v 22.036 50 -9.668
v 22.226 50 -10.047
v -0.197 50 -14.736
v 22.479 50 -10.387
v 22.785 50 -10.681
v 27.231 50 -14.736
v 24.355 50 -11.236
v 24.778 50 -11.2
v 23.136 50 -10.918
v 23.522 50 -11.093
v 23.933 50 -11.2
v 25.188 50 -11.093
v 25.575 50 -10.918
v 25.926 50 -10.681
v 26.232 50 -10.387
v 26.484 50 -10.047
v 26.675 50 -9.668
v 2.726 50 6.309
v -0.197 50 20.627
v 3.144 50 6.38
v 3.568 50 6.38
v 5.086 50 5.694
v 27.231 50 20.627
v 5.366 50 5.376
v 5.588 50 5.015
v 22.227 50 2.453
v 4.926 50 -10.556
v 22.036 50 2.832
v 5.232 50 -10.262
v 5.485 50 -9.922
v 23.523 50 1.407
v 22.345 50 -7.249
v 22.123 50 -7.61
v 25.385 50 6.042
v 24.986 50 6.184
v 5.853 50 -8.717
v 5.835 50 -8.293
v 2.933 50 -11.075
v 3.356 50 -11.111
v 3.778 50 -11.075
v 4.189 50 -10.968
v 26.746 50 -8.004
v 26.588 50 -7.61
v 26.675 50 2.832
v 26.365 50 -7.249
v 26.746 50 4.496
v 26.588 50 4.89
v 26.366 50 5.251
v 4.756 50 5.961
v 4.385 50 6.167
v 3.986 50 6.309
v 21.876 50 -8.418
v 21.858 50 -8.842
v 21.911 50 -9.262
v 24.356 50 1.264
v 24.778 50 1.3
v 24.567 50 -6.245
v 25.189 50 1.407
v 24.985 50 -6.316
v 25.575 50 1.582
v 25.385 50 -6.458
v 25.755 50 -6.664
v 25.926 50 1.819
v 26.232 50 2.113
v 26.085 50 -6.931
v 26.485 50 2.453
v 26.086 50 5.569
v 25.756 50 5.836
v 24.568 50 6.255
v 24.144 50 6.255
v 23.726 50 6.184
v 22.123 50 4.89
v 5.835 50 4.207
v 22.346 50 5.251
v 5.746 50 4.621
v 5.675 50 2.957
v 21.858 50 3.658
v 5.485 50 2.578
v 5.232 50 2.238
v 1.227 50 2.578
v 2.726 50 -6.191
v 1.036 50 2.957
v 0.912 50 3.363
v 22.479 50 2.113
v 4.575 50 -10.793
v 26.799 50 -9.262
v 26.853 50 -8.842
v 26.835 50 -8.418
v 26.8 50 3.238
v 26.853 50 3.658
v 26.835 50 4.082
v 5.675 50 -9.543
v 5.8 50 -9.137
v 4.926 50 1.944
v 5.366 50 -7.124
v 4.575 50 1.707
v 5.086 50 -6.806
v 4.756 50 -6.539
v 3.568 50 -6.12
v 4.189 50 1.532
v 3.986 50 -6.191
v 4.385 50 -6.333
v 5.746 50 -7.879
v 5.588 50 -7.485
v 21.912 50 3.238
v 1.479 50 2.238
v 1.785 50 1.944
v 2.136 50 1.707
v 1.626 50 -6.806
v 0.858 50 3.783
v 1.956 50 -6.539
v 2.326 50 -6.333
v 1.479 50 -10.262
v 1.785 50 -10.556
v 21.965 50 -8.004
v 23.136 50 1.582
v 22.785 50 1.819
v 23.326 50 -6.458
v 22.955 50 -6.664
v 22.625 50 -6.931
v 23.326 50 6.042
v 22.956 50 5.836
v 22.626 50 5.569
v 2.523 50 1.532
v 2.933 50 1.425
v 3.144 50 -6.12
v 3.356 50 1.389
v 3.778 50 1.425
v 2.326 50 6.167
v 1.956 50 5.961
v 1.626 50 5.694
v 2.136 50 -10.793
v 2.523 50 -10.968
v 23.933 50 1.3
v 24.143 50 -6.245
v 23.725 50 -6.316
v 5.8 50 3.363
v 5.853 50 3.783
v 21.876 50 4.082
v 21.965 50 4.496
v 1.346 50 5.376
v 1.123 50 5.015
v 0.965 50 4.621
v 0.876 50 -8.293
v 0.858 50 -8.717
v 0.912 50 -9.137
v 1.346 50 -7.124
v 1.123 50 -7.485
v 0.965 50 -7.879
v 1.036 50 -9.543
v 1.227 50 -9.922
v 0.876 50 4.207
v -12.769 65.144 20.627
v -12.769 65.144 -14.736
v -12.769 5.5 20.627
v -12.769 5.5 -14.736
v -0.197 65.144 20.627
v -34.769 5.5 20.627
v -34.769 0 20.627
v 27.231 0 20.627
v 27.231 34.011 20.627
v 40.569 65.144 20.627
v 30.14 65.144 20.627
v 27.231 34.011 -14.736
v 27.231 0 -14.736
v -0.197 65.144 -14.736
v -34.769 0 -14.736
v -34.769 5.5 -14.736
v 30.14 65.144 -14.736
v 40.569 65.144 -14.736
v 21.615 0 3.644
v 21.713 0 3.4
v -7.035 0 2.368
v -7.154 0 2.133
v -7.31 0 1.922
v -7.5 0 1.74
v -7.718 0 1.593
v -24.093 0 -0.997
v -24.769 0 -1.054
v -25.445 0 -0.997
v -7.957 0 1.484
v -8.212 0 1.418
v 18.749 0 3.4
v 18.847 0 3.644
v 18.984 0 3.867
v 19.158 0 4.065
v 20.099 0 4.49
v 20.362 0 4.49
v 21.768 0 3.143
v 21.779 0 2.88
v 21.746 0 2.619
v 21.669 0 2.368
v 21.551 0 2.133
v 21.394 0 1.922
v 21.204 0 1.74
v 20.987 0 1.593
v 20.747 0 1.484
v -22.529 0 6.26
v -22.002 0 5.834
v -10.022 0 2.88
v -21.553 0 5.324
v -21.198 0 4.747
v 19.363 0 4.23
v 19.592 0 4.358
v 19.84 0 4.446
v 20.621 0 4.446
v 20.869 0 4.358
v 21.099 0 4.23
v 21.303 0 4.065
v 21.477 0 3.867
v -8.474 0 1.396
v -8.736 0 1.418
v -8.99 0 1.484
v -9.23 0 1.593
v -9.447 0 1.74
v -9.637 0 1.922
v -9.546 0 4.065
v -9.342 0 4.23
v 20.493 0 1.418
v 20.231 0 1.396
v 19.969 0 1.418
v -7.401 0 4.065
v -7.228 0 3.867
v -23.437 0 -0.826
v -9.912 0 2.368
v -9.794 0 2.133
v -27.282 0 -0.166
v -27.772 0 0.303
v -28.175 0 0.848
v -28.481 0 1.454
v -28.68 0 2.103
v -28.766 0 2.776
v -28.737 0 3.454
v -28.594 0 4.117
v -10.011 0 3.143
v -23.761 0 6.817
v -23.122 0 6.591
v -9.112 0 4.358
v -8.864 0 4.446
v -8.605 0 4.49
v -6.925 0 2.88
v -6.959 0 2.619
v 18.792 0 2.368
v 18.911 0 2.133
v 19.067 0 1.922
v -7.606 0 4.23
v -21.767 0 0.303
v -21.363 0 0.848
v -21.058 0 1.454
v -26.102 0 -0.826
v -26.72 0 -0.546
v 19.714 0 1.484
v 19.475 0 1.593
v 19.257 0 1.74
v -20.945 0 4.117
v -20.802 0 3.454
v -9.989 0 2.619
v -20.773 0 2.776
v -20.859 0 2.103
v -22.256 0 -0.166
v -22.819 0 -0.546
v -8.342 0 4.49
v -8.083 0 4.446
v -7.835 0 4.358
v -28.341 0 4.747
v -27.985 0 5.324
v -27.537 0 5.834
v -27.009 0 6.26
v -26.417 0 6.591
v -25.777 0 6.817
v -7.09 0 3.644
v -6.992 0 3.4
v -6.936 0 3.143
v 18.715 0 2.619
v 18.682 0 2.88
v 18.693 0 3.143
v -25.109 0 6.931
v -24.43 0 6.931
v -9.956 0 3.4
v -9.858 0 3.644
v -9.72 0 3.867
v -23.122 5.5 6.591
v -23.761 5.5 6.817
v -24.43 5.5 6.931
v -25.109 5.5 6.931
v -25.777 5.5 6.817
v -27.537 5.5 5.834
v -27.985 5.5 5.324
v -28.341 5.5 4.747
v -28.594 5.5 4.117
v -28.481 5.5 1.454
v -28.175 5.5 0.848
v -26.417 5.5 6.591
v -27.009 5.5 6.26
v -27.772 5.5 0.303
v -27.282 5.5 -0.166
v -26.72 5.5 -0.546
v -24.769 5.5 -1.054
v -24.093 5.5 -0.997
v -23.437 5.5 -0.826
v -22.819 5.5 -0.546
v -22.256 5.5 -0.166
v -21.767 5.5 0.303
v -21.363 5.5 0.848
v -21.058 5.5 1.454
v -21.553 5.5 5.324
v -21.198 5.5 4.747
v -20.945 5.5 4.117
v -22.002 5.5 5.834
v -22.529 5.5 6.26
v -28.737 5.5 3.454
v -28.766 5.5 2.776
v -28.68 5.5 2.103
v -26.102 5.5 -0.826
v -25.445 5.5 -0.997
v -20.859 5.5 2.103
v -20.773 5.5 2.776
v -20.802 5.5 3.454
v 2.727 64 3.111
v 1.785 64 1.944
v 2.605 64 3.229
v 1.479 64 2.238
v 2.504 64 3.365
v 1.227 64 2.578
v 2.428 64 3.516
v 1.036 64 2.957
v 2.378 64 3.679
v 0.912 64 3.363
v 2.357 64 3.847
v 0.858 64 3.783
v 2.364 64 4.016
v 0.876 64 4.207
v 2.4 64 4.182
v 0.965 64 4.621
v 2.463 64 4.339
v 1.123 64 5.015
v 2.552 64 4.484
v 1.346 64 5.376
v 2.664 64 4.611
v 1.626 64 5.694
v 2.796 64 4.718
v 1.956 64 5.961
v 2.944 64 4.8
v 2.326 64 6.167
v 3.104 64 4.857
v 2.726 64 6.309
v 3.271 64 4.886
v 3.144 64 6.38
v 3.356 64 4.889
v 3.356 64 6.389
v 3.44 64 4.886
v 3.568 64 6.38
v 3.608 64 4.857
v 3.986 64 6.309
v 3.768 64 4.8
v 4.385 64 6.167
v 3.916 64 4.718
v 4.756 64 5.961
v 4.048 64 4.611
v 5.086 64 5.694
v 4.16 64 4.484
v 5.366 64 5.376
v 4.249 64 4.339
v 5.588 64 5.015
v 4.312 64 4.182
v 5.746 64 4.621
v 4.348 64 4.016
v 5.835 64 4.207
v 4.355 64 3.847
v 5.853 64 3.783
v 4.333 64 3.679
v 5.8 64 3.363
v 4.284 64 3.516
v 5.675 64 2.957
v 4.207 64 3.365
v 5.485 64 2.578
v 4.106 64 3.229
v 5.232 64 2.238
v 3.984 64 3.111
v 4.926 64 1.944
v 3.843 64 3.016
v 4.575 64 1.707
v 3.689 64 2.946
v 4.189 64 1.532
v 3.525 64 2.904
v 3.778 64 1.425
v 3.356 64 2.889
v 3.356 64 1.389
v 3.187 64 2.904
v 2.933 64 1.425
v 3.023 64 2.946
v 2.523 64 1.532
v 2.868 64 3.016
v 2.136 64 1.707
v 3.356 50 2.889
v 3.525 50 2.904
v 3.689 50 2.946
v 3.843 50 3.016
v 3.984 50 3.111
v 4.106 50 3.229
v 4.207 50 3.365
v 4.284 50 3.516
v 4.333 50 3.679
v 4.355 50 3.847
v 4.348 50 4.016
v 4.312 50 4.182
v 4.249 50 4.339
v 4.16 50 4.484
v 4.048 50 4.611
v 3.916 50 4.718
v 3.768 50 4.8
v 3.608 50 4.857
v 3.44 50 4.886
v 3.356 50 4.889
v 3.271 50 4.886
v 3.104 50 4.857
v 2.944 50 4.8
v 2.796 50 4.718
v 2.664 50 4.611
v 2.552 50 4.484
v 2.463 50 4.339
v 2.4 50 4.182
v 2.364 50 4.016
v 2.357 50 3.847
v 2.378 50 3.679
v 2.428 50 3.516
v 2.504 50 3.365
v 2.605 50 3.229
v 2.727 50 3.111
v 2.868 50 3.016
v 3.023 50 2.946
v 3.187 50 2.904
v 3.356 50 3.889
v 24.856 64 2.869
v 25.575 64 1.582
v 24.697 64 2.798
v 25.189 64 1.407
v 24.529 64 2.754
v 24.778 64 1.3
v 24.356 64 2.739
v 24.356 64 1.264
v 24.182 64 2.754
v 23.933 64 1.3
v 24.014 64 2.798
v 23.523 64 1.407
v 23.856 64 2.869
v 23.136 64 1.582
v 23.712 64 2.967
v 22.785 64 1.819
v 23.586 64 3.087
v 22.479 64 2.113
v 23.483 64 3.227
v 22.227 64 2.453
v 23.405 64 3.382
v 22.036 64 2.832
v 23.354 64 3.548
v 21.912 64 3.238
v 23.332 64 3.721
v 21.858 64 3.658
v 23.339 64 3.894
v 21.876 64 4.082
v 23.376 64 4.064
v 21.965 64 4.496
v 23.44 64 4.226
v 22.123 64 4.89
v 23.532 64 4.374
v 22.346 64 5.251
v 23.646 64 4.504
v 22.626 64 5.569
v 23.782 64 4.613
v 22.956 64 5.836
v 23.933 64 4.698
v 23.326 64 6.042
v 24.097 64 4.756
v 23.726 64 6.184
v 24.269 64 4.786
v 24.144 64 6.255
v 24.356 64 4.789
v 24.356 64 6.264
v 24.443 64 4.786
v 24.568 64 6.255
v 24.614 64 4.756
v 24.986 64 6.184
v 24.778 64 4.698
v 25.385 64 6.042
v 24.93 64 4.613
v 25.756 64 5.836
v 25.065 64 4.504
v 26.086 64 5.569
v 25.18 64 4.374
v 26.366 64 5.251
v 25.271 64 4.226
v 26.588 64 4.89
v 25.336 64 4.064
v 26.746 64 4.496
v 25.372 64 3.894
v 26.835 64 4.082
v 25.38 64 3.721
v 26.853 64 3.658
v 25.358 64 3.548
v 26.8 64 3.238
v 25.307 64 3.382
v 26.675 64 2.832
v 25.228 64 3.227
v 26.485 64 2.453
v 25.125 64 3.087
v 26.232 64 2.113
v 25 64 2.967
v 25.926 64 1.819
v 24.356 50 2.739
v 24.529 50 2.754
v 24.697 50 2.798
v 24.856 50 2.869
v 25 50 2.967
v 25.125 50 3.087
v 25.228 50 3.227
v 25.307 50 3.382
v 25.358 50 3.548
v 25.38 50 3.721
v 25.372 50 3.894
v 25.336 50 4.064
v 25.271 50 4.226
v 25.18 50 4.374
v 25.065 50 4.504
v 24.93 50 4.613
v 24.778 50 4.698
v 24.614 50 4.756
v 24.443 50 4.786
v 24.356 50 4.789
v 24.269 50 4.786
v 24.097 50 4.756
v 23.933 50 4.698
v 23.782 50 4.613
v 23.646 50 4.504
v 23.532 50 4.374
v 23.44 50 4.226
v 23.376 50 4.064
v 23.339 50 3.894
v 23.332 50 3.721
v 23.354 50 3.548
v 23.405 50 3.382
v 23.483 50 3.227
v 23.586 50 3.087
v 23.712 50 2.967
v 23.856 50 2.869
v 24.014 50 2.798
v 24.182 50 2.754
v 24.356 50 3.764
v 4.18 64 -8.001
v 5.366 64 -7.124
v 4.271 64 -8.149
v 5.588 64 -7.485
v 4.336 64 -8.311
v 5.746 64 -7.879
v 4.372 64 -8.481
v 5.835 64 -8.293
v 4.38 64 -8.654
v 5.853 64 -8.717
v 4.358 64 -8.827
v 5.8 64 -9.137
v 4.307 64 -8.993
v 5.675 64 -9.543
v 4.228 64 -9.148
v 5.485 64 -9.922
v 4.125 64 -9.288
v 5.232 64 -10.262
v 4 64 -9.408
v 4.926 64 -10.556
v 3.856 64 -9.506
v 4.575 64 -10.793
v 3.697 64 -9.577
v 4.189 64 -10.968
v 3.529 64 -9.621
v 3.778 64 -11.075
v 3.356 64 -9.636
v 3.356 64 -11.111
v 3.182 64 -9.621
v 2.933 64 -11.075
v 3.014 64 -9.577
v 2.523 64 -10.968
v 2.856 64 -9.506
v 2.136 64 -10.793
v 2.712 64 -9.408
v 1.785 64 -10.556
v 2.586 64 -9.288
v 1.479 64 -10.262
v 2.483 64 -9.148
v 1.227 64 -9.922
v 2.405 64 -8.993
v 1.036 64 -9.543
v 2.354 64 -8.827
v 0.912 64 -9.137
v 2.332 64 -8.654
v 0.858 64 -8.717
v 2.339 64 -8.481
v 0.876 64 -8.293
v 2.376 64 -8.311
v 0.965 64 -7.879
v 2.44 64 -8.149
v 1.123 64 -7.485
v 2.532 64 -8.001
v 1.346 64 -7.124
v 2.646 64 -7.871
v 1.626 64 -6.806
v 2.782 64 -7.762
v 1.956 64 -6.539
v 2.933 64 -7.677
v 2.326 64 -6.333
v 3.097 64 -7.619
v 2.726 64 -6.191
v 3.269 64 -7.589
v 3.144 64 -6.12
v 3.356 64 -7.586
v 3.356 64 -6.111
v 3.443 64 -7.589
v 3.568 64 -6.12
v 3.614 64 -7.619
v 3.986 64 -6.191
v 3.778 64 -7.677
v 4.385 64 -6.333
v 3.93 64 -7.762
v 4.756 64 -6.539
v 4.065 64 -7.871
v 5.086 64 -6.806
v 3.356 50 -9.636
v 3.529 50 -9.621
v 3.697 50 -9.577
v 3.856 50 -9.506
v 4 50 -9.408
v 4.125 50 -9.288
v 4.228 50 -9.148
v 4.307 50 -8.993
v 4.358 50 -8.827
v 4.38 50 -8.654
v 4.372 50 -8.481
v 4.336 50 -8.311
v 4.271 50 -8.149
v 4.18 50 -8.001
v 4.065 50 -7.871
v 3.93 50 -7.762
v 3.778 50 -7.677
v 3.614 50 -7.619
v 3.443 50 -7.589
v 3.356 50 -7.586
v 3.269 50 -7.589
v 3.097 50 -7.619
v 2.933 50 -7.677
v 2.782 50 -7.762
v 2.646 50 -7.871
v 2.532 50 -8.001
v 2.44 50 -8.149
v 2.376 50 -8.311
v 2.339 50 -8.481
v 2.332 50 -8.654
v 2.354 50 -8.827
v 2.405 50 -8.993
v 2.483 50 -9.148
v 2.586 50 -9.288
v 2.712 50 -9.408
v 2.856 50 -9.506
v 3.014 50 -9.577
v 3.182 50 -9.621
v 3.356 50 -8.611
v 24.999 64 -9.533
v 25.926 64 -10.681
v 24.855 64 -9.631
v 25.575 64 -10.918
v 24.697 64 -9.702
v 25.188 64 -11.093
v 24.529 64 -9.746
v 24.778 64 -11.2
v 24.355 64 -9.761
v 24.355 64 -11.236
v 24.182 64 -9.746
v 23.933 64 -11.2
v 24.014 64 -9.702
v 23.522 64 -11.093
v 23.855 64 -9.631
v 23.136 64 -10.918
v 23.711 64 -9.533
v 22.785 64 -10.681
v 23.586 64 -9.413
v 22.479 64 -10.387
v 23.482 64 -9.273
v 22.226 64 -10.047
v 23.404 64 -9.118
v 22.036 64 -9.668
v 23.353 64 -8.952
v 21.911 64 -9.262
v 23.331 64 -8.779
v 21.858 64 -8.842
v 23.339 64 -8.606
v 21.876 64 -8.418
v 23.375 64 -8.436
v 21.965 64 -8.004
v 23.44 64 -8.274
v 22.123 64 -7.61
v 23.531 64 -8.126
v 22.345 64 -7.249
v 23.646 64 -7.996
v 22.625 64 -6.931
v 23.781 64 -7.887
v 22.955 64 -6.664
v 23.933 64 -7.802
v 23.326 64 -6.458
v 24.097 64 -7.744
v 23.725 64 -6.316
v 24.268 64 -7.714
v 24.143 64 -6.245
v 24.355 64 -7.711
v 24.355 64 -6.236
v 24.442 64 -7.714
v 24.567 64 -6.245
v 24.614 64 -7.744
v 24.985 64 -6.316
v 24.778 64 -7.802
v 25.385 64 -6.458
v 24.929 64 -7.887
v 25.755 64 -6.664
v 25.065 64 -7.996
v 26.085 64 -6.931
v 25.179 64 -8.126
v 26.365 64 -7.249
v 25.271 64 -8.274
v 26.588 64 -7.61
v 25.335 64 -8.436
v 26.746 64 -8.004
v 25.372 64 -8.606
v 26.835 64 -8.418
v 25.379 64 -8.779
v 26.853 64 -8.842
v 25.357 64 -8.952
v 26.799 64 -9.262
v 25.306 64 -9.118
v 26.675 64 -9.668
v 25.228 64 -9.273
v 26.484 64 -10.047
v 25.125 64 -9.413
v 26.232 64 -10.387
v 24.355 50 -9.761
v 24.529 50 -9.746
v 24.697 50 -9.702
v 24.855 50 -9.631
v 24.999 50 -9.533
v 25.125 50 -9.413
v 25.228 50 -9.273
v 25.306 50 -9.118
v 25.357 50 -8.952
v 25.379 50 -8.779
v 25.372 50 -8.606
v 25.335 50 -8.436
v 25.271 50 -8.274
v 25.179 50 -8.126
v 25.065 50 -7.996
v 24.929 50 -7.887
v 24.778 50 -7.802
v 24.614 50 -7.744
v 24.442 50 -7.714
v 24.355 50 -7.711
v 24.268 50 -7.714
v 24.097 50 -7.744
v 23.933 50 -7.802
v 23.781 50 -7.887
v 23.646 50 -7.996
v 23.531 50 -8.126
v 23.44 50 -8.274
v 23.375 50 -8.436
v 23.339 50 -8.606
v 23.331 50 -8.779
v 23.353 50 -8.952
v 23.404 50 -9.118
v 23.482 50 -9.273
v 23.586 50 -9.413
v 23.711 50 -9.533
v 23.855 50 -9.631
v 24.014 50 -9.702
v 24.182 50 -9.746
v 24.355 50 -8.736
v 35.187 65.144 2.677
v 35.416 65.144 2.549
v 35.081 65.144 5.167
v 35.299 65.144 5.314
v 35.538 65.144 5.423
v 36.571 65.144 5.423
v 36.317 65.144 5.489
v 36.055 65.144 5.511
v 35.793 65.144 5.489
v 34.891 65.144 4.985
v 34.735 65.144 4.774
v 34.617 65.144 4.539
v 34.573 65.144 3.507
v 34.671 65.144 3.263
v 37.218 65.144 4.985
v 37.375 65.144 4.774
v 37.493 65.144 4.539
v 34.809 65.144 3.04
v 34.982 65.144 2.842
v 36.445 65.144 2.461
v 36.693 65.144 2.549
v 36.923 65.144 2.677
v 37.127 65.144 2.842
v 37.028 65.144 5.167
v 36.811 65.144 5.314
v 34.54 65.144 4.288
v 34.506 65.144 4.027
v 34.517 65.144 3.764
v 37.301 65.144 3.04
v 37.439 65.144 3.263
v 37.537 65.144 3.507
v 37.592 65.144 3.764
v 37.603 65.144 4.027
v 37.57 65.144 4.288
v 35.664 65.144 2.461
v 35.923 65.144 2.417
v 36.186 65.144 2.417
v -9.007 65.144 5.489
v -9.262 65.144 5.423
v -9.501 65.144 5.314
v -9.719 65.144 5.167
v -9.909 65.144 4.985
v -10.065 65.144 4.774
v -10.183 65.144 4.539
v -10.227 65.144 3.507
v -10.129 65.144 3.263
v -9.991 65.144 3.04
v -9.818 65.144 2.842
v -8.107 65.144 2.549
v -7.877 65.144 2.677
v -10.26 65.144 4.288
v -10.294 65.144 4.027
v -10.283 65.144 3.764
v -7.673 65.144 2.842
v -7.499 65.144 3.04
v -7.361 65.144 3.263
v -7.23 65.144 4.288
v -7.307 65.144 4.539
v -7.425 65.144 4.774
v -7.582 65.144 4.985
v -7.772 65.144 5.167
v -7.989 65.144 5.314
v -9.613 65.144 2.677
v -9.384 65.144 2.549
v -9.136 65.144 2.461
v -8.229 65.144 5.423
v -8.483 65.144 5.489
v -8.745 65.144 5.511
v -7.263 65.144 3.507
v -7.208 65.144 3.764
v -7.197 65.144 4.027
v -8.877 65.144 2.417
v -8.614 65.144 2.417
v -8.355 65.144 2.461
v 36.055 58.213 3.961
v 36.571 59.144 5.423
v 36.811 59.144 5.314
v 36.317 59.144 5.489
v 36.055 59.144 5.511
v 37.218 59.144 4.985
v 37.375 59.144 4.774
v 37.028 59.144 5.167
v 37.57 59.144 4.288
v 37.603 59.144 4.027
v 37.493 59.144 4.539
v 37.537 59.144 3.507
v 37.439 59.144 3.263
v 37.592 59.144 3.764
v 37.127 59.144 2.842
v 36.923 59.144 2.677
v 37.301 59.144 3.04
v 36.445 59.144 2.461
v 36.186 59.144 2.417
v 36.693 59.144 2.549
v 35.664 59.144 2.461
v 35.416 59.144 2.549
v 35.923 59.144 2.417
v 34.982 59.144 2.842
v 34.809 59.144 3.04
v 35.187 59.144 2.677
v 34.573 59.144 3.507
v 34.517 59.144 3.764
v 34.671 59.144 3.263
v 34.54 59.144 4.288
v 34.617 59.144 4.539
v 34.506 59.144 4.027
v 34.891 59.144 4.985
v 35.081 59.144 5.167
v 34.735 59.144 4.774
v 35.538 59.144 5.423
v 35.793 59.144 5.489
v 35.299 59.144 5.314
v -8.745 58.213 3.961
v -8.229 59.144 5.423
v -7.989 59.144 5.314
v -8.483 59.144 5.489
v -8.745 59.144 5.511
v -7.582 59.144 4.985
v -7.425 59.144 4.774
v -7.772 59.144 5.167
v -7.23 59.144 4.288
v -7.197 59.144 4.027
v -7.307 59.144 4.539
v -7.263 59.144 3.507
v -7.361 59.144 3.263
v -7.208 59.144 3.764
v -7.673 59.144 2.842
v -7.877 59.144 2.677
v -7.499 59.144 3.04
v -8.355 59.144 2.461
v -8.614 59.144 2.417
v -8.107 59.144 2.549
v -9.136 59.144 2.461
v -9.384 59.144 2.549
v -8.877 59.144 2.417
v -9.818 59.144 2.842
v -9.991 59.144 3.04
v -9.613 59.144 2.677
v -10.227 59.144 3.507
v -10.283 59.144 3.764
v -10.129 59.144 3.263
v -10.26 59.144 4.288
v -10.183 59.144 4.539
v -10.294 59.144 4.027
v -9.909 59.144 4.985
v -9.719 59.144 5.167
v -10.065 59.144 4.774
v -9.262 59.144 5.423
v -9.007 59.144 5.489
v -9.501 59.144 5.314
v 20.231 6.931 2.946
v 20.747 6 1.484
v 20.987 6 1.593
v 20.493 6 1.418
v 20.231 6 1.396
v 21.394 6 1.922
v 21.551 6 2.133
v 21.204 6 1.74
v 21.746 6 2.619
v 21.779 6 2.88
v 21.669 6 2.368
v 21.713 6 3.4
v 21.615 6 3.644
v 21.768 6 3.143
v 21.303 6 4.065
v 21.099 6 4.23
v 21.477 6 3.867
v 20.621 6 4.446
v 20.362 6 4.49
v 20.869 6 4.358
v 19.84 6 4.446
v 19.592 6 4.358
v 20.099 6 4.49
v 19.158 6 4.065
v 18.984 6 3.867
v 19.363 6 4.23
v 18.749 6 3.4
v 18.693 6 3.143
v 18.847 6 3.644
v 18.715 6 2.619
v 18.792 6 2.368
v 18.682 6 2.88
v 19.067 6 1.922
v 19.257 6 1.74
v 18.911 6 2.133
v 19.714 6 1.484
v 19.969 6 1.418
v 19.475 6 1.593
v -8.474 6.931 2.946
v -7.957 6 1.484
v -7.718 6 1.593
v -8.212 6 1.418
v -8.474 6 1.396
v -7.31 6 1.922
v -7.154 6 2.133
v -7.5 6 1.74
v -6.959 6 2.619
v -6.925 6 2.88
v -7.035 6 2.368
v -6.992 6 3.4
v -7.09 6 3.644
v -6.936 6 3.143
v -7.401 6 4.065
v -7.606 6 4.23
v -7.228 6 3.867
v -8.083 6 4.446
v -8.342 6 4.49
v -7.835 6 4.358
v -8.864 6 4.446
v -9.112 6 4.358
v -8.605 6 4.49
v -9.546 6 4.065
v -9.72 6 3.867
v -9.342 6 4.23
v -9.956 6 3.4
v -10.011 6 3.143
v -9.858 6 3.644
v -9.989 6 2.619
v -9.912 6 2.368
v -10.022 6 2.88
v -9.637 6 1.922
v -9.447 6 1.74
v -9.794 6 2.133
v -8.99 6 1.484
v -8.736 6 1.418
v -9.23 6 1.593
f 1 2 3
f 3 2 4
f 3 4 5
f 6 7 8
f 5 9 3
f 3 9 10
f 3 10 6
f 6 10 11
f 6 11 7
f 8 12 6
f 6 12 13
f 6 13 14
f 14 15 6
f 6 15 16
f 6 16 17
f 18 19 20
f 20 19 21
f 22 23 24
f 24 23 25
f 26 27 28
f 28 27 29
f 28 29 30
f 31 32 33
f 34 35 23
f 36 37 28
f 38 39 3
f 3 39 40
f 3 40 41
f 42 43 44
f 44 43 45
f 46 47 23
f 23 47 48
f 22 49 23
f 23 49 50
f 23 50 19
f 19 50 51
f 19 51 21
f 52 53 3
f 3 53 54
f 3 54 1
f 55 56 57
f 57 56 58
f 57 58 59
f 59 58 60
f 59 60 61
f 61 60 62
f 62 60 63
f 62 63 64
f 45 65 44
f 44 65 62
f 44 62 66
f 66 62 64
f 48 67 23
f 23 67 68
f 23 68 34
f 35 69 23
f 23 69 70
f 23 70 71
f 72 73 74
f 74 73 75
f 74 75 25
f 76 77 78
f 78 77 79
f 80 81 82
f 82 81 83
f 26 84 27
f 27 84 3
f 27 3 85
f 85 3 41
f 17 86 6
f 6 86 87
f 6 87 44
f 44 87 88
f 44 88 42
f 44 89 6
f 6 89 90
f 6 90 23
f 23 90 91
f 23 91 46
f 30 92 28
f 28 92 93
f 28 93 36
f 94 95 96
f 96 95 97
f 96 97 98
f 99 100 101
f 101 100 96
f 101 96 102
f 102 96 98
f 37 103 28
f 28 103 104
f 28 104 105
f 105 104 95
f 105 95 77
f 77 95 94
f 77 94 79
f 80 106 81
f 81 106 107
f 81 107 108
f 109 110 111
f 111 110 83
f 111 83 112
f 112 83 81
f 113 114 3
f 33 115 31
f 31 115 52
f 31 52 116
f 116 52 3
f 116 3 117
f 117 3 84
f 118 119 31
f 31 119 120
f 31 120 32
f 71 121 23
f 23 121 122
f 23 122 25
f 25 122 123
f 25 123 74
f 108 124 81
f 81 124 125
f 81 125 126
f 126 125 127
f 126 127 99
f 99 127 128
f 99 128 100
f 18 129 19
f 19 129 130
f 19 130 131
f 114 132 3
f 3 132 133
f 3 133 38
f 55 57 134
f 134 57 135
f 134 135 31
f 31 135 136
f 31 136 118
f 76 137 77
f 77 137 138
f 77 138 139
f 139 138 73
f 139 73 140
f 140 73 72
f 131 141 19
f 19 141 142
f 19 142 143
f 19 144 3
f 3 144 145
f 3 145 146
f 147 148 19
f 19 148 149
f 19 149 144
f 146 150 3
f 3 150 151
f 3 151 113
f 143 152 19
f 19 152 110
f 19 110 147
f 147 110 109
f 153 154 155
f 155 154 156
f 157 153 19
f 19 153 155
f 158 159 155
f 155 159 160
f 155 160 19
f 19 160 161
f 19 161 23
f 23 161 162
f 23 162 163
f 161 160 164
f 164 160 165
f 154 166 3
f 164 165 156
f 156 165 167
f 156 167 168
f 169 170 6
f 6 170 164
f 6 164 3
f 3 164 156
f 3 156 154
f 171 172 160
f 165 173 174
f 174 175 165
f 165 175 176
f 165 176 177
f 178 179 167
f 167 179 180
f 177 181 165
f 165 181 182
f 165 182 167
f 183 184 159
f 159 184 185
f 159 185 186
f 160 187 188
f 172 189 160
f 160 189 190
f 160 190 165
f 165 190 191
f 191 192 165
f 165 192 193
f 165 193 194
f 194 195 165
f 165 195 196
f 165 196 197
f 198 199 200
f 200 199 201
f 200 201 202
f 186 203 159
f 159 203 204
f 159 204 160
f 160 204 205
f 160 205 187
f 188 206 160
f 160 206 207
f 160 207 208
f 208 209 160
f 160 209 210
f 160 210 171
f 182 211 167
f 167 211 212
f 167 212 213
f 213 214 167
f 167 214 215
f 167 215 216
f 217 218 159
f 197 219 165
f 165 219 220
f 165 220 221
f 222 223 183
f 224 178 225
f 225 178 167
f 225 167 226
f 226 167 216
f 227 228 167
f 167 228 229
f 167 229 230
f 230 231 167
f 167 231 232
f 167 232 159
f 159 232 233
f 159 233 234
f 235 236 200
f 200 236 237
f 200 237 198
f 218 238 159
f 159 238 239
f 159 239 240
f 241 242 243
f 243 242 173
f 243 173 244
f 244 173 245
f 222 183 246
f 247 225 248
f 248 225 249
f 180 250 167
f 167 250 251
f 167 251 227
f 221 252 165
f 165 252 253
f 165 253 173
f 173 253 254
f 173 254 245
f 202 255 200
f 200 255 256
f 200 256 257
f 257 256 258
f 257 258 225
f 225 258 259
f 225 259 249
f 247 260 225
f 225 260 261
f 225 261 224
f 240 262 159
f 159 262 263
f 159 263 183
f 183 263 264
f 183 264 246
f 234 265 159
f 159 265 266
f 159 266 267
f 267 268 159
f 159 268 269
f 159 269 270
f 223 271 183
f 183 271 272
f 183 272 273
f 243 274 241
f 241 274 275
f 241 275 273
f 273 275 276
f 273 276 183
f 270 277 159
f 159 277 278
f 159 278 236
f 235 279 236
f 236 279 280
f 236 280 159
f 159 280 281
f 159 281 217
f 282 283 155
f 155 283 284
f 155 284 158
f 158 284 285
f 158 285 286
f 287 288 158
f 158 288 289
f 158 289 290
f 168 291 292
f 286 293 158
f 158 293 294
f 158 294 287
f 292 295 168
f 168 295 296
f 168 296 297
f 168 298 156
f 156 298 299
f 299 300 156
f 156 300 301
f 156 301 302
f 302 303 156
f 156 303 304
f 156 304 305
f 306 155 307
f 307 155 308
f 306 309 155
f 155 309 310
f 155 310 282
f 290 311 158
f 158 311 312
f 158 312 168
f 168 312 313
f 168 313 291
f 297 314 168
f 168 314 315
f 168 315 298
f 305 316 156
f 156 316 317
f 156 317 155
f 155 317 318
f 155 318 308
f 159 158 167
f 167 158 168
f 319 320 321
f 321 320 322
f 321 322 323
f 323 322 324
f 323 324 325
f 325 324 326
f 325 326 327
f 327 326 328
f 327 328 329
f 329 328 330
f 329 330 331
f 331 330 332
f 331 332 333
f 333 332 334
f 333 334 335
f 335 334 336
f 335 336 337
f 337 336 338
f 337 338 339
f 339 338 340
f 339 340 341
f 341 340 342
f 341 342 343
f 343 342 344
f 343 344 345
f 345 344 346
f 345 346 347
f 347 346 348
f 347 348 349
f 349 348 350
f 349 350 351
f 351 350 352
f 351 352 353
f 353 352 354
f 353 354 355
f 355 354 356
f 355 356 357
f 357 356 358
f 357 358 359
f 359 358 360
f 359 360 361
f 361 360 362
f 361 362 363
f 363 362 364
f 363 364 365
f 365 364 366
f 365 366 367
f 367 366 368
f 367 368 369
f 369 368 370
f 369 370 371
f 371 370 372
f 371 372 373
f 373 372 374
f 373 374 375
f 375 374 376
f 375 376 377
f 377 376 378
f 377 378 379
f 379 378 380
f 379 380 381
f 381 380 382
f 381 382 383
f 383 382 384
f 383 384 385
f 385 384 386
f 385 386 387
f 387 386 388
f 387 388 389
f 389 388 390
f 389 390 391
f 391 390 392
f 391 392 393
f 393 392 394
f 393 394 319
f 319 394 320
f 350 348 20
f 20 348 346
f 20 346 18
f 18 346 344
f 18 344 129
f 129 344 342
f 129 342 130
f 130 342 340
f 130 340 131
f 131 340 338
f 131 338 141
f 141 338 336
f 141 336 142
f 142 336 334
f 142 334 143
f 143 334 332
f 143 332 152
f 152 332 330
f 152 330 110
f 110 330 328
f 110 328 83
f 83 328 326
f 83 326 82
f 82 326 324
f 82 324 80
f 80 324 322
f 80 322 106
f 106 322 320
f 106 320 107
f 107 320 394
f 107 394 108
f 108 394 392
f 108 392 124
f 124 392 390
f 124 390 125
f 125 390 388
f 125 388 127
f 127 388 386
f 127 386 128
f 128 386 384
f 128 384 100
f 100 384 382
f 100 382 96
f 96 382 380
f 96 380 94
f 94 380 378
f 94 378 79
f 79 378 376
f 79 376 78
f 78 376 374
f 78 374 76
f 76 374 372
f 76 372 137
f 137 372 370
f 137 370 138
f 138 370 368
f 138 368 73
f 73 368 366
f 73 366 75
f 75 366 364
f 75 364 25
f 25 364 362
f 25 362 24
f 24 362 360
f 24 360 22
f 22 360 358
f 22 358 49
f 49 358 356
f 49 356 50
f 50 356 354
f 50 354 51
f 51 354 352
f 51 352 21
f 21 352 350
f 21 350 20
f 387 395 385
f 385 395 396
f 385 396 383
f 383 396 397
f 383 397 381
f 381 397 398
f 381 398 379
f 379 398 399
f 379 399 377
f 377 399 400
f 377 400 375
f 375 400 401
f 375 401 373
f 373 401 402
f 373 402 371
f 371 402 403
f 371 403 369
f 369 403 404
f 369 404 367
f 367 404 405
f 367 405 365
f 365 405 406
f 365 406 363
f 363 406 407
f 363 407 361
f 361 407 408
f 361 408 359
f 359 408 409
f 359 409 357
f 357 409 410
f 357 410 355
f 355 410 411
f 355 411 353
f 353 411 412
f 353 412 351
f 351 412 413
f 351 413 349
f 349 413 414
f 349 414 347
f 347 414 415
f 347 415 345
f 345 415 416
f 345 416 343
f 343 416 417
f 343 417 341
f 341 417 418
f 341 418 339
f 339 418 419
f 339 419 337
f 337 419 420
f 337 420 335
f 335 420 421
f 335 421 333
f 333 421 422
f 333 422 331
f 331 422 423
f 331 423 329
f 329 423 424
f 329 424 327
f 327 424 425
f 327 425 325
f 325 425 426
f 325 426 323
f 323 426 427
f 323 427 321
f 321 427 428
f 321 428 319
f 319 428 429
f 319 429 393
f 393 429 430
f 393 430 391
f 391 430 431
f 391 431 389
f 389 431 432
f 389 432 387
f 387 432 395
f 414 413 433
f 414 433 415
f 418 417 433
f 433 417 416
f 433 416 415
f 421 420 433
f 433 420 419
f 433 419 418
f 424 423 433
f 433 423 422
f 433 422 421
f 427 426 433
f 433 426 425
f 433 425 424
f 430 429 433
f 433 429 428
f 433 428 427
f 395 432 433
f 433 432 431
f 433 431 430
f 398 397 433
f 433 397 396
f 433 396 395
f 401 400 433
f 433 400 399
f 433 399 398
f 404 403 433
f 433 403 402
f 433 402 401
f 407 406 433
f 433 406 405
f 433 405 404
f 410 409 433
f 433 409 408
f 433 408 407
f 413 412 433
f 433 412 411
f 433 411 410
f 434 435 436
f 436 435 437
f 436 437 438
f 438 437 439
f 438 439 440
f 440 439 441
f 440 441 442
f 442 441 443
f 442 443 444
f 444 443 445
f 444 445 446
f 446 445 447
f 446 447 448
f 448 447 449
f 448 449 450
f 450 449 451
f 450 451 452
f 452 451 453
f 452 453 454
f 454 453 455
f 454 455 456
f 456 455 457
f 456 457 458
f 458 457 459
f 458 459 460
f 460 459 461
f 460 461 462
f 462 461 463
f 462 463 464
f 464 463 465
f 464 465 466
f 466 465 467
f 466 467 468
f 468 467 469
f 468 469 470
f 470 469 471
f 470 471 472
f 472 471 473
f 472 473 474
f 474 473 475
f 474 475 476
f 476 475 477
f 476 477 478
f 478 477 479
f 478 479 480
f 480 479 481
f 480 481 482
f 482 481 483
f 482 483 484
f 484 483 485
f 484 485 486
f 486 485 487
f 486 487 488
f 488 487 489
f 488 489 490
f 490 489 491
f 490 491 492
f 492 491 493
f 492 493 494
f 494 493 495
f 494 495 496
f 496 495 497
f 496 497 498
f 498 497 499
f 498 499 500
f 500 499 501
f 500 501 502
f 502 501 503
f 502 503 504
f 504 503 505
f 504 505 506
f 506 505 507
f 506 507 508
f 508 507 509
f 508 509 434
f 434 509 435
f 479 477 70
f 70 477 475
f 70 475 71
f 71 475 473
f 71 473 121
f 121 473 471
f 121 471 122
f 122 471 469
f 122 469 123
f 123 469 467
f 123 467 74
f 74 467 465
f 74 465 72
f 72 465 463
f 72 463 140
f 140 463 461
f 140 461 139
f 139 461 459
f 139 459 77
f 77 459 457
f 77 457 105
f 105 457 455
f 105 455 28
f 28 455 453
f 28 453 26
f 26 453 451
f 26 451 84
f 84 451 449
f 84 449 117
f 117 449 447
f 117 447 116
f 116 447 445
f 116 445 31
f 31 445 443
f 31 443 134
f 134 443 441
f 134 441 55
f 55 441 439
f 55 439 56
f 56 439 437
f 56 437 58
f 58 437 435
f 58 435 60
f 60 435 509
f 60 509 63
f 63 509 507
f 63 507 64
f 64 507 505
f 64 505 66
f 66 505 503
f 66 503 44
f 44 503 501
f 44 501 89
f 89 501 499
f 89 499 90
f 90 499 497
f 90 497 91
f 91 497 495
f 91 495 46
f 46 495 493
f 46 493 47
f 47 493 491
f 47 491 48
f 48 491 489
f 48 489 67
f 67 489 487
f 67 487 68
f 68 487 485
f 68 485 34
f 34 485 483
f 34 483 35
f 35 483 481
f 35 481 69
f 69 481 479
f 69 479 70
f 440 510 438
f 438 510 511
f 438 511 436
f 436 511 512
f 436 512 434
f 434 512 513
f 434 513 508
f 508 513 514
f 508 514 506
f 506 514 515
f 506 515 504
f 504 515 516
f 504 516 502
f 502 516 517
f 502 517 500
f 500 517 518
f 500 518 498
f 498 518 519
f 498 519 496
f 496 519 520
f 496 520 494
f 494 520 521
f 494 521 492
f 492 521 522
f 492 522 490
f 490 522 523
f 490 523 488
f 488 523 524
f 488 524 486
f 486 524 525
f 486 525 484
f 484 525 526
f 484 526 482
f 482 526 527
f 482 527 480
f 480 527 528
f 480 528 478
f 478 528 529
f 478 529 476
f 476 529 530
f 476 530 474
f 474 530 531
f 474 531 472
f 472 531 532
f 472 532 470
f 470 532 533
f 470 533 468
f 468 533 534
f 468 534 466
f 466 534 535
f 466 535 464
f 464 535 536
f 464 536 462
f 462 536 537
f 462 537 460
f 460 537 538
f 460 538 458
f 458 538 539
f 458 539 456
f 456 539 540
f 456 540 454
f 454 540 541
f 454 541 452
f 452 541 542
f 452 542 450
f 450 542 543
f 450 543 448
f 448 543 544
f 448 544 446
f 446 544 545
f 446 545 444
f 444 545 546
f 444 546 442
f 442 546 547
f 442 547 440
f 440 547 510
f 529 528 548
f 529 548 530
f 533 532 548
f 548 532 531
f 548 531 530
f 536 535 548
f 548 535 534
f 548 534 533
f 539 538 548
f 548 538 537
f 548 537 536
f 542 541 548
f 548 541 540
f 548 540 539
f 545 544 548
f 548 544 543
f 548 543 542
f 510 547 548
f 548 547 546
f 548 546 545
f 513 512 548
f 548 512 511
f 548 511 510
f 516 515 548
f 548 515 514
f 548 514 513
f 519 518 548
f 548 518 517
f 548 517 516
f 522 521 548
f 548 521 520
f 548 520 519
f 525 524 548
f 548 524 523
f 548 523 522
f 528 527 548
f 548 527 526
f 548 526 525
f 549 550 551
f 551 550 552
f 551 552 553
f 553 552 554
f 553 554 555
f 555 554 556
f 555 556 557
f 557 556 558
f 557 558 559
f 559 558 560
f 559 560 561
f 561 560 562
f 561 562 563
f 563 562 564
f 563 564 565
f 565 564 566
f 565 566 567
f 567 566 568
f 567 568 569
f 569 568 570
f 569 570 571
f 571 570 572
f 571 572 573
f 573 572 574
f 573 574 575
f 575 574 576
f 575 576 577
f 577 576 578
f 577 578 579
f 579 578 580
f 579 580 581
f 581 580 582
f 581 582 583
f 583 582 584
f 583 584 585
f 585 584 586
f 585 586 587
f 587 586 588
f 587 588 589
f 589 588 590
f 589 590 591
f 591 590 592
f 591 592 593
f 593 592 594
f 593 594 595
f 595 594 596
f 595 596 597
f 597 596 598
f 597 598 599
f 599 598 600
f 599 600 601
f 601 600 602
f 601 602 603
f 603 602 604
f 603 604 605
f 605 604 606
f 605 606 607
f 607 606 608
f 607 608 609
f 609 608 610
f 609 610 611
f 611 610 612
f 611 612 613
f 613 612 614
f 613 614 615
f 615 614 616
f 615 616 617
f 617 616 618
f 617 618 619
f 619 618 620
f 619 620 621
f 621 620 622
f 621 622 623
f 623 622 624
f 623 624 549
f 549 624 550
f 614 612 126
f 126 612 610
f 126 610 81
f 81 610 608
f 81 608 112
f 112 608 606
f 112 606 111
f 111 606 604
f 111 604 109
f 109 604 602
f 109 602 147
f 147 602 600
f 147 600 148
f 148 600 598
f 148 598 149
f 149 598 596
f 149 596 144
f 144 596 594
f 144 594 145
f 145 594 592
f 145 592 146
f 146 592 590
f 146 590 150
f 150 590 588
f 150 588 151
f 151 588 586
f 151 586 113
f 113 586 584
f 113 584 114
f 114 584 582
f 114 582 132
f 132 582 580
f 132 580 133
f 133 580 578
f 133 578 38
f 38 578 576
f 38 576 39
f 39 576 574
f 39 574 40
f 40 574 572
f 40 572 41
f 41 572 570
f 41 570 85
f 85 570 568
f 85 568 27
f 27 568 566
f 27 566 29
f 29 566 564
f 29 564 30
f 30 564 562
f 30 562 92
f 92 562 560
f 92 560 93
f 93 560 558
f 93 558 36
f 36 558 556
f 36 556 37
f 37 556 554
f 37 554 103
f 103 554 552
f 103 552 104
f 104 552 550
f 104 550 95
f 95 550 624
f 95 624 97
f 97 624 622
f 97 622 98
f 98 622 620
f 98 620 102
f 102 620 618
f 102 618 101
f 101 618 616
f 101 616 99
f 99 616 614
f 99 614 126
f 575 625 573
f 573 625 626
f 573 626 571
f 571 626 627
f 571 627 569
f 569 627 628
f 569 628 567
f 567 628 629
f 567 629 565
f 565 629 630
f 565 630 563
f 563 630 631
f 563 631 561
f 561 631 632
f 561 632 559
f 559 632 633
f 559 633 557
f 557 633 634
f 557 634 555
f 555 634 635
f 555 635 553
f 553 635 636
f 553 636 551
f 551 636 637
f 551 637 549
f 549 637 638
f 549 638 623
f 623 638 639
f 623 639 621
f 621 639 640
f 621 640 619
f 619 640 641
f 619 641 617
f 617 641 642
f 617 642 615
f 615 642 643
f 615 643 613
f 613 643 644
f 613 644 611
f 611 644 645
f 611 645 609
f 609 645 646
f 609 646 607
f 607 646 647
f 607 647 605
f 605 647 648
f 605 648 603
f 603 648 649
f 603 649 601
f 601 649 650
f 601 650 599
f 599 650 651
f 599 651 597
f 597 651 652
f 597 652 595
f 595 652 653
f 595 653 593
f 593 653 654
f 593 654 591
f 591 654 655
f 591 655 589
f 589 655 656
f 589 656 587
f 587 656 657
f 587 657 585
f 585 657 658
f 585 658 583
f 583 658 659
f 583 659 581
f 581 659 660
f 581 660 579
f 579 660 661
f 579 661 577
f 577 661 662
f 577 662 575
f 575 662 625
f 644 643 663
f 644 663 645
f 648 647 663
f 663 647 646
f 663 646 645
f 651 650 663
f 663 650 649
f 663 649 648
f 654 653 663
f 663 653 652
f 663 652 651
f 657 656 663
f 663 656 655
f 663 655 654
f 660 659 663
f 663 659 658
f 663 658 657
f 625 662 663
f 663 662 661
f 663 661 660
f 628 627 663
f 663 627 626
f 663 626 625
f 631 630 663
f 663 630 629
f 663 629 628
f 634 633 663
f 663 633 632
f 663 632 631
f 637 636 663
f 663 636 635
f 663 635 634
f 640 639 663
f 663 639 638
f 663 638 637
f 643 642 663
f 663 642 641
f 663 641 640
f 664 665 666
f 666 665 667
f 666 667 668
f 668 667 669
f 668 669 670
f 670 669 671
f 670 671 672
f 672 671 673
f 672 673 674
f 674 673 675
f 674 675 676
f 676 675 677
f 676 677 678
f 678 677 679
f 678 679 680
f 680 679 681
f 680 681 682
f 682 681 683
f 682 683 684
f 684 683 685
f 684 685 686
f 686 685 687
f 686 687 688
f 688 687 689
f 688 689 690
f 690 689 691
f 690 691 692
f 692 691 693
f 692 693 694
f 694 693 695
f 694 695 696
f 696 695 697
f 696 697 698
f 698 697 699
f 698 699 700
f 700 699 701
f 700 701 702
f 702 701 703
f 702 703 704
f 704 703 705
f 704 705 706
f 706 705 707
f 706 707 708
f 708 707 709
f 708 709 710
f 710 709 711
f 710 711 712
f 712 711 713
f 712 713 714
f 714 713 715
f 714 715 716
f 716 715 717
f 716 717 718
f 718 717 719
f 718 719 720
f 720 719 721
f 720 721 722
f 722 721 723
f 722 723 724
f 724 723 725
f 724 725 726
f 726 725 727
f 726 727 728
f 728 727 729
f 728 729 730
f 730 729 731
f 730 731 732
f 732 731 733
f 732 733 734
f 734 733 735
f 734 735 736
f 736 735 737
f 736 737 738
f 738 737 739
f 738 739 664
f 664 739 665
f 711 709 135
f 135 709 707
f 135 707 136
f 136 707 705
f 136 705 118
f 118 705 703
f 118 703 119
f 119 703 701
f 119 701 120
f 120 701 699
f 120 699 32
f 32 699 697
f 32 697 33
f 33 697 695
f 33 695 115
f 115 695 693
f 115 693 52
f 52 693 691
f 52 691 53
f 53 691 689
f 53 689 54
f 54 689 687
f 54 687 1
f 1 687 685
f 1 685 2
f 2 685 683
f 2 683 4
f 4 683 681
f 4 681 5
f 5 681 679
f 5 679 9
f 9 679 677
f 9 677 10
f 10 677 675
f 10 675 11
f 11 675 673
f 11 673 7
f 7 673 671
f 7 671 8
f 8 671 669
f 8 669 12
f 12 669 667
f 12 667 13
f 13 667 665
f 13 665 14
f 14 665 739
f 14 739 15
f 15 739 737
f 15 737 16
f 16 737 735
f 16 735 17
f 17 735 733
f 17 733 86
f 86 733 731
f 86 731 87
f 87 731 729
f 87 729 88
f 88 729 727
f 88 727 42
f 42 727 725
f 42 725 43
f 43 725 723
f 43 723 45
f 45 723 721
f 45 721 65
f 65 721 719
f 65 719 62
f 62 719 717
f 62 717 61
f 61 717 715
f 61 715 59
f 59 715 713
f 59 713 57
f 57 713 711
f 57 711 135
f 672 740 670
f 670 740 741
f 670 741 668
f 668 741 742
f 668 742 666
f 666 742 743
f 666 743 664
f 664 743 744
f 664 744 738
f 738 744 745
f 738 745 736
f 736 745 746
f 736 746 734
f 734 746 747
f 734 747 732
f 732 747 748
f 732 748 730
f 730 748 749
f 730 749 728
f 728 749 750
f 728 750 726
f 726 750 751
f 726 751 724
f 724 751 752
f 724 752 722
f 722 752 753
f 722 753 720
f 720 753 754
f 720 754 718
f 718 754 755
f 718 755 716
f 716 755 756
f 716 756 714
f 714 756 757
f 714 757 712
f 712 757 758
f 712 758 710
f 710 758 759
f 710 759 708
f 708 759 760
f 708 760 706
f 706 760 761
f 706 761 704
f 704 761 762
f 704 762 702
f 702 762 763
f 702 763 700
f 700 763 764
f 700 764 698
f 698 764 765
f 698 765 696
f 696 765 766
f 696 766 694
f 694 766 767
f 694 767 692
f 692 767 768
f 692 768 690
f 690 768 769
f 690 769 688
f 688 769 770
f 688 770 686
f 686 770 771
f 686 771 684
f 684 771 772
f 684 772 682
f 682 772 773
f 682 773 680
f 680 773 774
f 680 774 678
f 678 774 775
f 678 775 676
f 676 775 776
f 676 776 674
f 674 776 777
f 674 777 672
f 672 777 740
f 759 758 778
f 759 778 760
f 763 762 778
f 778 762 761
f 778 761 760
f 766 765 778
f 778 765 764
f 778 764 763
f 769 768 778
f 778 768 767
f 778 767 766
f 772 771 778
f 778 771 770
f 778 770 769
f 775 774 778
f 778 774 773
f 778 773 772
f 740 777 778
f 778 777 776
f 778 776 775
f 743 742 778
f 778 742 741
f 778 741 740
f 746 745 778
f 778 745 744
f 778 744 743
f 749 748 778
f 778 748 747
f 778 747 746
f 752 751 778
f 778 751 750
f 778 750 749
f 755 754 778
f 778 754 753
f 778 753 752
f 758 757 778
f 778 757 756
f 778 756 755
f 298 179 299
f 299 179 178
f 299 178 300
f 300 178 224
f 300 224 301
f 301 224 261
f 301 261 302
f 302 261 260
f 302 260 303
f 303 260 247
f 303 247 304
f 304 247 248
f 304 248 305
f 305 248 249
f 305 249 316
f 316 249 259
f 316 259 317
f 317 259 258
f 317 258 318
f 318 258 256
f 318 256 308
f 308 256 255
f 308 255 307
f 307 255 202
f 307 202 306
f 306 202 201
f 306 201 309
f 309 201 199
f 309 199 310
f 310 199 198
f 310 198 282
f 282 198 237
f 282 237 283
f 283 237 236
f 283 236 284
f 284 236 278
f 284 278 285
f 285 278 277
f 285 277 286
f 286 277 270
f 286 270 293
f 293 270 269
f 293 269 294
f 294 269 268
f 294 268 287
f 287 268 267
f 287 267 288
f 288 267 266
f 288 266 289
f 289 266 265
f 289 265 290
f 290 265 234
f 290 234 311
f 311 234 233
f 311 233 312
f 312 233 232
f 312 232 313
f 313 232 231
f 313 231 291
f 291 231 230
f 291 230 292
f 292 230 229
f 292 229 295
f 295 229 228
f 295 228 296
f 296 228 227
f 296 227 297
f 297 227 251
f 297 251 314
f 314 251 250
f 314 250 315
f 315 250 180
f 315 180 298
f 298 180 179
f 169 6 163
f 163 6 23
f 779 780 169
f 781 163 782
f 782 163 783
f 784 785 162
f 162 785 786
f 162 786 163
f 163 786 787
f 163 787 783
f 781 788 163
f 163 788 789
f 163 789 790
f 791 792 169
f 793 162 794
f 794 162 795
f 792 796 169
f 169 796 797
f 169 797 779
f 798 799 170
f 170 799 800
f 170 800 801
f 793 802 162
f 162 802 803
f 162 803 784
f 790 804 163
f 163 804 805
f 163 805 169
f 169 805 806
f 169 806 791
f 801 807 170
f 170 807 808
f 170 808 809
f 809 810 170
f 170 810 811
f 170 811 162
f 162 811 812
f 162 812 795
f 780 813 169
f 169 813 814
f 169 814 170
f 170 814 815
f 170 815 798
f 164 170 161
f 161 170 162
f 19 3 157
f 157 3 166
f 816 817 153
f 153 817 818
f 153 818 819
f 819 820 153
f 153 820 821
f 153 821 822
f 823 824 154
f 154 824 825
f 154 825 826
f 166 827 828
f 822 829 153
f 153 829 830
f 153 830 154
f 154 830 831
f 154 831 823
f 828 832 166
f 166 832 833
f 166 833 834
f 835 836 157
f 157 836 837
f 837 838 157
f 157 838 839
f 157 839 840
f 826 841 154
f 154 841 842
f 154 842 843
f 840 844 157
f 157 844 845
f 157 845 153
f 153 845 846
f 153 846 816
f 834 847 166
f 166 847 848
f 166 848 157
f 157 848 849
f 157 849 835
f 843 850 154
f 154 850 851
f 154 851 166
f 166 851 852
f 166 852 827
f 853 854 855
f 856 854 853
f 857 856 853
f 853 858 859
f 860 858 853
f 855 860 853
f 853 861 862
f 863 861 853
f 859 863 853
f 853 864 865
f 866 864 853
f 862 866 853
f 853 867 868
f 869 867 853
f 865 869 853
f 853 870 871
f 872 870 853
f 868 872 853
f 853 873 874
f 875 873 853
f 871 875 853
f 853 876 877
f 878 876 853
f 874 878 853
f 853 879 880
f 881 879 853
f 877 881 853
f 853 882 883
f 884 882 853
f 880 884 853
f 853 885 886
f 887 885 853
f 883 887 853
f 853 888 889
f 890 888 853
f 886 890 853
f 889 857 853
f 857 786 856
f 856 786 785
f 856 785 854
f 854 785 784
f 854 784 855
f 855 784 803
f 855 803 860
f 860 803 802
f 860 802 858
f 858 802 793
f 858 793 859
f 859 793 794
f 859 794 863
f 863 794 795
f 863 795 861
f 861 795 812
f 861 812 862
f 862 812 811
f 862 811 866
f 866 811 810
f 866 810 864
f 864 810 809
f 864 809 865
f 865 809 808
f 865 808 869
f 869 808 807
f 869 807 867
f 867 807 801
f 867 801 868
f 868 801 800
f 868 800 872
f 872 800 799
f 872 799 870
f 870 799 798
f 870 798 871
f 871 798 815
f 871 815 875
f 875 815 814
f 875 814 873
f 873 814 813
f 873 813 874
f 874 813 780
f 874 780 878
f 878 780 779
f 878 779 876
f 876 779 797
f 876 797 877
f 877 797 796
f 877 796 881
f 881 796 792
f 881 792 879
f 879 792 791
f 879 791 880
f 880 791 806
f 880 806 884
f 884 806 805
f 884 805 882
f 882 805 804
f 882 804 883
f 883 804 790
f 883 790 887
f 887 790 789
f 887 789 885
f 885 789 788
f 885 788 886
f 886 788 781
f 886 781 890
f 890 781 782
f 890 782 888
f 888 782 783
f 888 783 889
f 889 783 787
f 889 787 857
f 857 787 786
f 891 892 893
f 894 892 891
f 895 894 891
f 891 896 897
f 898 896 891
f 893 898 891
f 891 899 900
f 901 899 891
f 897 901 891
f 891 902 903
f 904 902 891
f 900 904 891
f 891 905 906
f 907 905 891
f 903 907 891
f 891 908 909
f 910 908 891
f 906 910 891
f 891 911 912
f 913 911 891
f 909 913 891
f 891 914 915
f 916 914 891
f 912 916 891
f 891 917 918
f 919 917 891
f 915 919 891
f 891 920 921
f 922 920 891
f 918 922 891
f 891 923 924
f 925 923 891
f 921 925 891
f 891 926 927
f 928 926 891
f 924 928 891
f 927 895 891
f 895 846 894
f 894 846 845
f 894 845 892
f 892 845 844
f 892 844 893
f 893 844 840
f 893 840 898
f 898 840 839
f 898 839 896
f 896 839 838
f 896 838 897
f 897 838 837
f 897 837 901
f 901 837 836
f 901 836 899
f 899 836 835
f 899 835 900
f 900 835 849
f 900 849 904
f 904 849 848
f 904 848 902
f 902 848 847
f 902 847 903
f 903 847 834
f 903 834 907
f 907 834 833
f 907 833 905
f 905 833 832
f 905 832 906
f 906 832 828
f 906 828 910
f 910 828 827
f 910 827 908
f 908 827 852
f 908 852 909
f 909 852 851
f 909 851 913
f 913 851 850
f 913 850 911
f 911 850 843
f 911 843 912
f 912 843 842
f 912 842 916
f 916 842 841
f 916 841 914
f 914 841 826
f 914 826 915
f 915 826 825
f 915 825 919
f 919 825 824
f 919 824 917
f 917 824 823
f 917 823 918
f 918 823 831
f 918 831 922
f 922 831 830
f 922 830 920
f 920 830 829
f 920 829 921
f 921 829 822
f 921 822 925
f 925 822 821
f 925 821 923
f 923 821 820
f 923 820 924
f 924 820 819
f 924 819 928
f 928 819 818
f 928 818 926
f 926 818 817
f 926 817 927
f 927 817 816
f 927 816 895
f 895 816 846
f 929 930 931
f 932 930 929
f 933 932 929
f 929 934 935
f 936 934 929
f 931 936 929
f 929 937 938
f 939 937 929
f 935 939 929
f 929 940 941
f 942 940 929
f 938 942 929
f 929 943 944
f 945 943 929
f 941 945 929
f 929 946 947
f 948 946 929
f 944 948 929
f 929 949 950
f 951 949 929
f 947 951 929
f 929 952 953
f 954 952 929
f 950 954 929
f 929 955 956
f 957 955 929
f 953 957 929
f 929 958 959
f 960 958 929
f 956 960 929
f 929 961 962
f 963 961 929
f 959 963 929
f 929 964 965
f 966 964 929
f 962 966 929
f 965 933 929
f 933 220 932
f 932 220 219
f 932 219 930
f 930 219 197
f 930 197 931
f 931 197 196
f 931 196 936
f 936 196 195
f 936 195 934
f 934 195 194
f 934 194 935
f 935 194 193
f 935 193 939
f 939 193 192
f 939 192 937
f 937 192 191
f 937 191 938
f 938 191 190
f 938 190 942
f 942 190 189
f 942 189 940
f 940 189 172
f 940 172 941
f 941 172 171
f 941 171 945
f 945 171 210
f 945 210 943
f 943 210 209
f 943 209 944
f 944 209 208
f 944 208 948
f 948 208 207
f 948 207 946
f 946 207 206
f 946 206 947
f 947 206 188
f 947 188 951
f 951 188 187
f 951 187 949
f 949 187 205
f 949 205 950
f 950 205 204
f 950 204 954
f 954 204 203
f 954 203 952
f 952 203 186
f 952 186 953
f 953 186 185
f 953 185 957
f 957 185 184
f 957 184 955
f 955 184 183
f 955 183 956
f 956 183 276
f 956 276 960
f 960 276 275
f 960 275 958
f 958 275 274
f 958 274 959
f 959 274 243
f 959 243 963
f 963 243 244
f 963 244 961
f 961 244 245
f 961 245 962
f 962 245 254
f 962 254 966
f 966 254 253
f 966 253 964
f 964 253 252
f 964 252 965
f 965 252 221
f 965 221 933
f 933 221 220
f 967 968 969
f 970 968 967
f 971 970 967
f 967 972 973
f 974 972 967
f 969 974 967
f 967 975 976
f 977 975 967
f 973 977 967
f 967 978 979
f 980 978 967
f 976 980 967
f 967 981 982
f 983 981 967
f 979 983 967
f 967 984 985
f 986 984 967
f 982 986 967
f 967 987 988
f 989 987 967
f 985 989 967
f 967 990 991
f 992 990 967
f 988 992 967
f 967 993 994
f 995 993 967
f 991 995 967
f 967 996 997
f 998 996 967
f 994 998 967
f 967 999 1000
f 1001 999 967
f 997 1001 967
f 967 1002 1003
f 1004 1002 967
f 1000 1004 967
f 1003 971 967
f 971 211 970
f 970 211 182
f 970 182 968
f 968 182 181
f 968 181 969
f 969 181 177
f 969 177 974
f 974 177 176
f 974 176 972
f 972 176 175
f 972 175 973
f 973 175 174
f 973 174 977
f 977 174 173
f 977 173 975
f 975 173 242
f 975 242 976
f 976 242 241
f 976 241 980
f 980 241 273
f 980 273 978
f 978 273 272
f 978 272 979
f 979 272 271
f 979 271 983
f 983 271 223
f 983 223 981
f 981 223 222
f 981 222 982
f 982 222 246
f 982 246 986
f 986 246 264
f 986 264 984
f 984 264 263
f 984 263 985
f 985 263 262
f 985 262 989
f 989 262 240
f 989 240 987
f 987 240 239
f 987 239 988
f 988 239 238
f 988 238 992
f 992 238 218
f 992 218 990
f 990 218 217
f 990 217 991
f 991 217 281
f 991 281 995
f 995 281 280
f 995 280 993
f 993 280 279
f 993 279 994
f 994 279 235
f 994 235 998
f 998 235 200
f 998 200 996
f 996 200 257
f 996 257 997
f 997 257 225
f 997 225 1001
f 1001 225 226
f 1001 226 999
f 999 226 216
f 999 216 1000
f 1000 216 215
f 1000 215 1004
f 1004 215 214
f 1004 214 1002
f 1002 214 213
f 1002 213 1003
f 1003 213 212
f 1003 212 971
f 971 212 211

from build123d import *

# Parameters (mm, degrees)
SKETCH1_W              = 40
SKETCH1_H              = 35.362964007
BOSS_EXTRUDE1_DEPTH    = 50
SKETCH2_W              = 35.362964007
SKETCH2_H              = 5.5
BOSS_EXTRUDE2_DEPTH    = 22
SKETCH3_R              = 2.5
SKETCH3_R_2            = 1
SKETCH3_R_3            = 1.025
BOSS_EXTRUDE3_DEPTH    = 14
D_GAGEMENT_M71_D       = 8
BOSS_EXTRUDE4_DEPTH    = 35.362964
SKETCH8_W              = 12.572018863
SKETCH8_H              = 35.362964007
BOSS_EXTRUDE5_DEPTH    = 15.144107649
D_GAGEMENT_M2_53_D     = 3.1
D_GAGEMENT_M2_53_DEPTH = 6
D_GAGEMENT_M2_53_TIP   = 0.931333959
D_GAGEMENT_M2_51_D     = 3.1
D_GAGEMENT_M2_51_DEPTH = 6
D_GAGEMENT_M2_51_TIP   = 0.931333959


with BuildPart() as part:
    # Sketch1 → Boss-Extrude1 (new body)
    with BuildSketch(Plane(origin=(0, 0, 0), x_dir=(1, 0, 0), z_dir=(0, 1, 0))):
        with Locations((7.230679314, -2.945715381)):
            Rectangle(SKETCH1_W, SKETCH1_H)
    extrude(amount=BOSS_EXTRUDE1_DEPTH)

    # Sketch2 → Boss-Extrude2 (add)
    with BuildSketch(Plane.ZY.offset(12.769320686)):
        with Locations((2.945715381, 2.75)):
            Rectangle(SKETCH2_W, SKETCH2_H)
    extrude(amount=BOSS_EXTRUDE2_DEPTH)

    # Sketch3 → Boss-Extrude3 (add)
    # profile 1 of 4: a face of its own
    with BuildSketch(Plane(origin=(0, 50, 0), x_dir=(1, 0, 0), z_dir=(0, 1, 0))):
        with Locations(Location((3.355679314, -3.889233377, 0), (0, 0, 90))):
            Circle(SKETCH3_R)
        with Locations(Location((3.355679314, -3.889233377, 0), (0, 0, 270))):
            Circle(SKETCH3_R_2, mode=Mode.SUBTRACT)
    # profile 2 of 4: a face of its own
    with BuildSketch(Plane(origin=(0, 50, 0), x_dir=(1, 0, 0), z_dir=(0, 1, 0))):
        with Locations(Location((24.355679314, -3.764233372, 0), (0, 0, 90))):
            Circle(SKETCH3_R)
        with Locations(Location((24.355679314, -3.764233372, 0), (0, 0, 270))):
            Circle(SKETCH3_R_3, mode=Mode.SUBTRACT)
    # profile 3 of 4: a face of its own
    with BuildSketch(Plane(origin=(0, 50, 0), x_dir=(1, 0, 0), z_dir=(0, 1, 0))):
        with Locations(Location((3.355679314, 8.610766623, 0), (0, 0, 90))):
            Circle(SKETCH3_R)
        with Locations(Location((3.355679314, 8.610766623, 0), (0, 0, 270))):
            Circle(SKETCH3_R_3, mode=Mode.SUBTRACT)
    # profile 4 of 4: a face of its own
    with BuildSketch(Plane(origin=(0, 50, 0), x_dir=(1, 0, 0), z_dir=(0, 1, 0))):
        with Locations(Location((24.355307287, 8.735766623, 0), (0, 0, 90))):
            Circle(SKETCH3_R)
        with Locations(Location((24.355307287, 8.735766623, 0), (0, 0, 270))):
            Circle(SKETCH3_R_3, mode=Mode.SUBTRACT)
    extrude(amount=BOSS_EXTRUDE3_DEPTH)

    # Dégagement M71 (through all)
    with Locations(Plane(origin=(0, 0, 0), x_dir=(-1, 0, 0), z_dir=(0, -1, 0))):
        with Locations((24.769320686, -2.945715381)):
            Hole(D_GAGEMENT_M71_D / 2)

    # Sketch7 → Boss-Extrude4 (add)
    with BuildSketch(Plane.XY.offset(20.627197384)):
        Polygon((27.230679314, 34.010518151), (40.568594836, 65.144107649), (30.139889808, 65.144107649), (27.230679314, 50), align=None)
    extrude(amount=-BOSS_EXTRUDE4_DEPTH)

    # Sketch8 → Boss-Extrude5 (add)
    with BuildSketch(Plane(origin=(0, 50, 0), x_dir=(1, 0, 0), z_dir=(0, 1, 0))):
        with Locations((-6.483311255, -2.945715381)):
            Rectangle(SKETCH8_W, SKETCH8_H)
    extrude(amount=BOSS_EXTRUDE5_DEPTH)

    # Dégagement M2.53
    with Locations(Plane(origin=(0, 65.144107649, 0), x_dir=(1, 0, 0), z_dir=(0, 1, 0))):
        with Locations((-8.745252094, -3.961262734), (36.054747906, -3.961262734)):
            Hole(D_GAGEMENT_M2_53_D / 2, depth=D_GAGEMENT_M2_53_DEPTH)
            with Locations((0, 0, -(D_GAGEMENT_M2_53_DEPTH + D_GAGEMENT_M2_53_TIP / 2))):  # 118° drill point
                Cone(0, D_GAGEMENT_M2_53_D / 2, D_GAGEMENT_M2_53_TIP, mode=Mode.SUBTRACT)

    # Dégagement M2.51
    with Locations(Plane(origin=(0, 0, 0), x_dir=(-1, 0, 0), z_dir=(0, -1, 0))):
        with Locations((8.473719715, -2.945715381), (-20.230679314, -2.945715381)):
            Hole(D_GAGEMENT_M2_51_D / 2, depth=D_GAGEMENT_M2_51_DEPTH)
            with Locations((0, 0, -(D_GAGEMENT_M2_51_DEPTH + D_GAGEMENT_M2_51_TIP / 2))):  # 118° drill point
                Cone(0, D_GAGEMENT_M2_51_D / 2, D_GAGEMENT_M2_51_TIP, mode=Mode.SUBTRACT)


solid = part.part
